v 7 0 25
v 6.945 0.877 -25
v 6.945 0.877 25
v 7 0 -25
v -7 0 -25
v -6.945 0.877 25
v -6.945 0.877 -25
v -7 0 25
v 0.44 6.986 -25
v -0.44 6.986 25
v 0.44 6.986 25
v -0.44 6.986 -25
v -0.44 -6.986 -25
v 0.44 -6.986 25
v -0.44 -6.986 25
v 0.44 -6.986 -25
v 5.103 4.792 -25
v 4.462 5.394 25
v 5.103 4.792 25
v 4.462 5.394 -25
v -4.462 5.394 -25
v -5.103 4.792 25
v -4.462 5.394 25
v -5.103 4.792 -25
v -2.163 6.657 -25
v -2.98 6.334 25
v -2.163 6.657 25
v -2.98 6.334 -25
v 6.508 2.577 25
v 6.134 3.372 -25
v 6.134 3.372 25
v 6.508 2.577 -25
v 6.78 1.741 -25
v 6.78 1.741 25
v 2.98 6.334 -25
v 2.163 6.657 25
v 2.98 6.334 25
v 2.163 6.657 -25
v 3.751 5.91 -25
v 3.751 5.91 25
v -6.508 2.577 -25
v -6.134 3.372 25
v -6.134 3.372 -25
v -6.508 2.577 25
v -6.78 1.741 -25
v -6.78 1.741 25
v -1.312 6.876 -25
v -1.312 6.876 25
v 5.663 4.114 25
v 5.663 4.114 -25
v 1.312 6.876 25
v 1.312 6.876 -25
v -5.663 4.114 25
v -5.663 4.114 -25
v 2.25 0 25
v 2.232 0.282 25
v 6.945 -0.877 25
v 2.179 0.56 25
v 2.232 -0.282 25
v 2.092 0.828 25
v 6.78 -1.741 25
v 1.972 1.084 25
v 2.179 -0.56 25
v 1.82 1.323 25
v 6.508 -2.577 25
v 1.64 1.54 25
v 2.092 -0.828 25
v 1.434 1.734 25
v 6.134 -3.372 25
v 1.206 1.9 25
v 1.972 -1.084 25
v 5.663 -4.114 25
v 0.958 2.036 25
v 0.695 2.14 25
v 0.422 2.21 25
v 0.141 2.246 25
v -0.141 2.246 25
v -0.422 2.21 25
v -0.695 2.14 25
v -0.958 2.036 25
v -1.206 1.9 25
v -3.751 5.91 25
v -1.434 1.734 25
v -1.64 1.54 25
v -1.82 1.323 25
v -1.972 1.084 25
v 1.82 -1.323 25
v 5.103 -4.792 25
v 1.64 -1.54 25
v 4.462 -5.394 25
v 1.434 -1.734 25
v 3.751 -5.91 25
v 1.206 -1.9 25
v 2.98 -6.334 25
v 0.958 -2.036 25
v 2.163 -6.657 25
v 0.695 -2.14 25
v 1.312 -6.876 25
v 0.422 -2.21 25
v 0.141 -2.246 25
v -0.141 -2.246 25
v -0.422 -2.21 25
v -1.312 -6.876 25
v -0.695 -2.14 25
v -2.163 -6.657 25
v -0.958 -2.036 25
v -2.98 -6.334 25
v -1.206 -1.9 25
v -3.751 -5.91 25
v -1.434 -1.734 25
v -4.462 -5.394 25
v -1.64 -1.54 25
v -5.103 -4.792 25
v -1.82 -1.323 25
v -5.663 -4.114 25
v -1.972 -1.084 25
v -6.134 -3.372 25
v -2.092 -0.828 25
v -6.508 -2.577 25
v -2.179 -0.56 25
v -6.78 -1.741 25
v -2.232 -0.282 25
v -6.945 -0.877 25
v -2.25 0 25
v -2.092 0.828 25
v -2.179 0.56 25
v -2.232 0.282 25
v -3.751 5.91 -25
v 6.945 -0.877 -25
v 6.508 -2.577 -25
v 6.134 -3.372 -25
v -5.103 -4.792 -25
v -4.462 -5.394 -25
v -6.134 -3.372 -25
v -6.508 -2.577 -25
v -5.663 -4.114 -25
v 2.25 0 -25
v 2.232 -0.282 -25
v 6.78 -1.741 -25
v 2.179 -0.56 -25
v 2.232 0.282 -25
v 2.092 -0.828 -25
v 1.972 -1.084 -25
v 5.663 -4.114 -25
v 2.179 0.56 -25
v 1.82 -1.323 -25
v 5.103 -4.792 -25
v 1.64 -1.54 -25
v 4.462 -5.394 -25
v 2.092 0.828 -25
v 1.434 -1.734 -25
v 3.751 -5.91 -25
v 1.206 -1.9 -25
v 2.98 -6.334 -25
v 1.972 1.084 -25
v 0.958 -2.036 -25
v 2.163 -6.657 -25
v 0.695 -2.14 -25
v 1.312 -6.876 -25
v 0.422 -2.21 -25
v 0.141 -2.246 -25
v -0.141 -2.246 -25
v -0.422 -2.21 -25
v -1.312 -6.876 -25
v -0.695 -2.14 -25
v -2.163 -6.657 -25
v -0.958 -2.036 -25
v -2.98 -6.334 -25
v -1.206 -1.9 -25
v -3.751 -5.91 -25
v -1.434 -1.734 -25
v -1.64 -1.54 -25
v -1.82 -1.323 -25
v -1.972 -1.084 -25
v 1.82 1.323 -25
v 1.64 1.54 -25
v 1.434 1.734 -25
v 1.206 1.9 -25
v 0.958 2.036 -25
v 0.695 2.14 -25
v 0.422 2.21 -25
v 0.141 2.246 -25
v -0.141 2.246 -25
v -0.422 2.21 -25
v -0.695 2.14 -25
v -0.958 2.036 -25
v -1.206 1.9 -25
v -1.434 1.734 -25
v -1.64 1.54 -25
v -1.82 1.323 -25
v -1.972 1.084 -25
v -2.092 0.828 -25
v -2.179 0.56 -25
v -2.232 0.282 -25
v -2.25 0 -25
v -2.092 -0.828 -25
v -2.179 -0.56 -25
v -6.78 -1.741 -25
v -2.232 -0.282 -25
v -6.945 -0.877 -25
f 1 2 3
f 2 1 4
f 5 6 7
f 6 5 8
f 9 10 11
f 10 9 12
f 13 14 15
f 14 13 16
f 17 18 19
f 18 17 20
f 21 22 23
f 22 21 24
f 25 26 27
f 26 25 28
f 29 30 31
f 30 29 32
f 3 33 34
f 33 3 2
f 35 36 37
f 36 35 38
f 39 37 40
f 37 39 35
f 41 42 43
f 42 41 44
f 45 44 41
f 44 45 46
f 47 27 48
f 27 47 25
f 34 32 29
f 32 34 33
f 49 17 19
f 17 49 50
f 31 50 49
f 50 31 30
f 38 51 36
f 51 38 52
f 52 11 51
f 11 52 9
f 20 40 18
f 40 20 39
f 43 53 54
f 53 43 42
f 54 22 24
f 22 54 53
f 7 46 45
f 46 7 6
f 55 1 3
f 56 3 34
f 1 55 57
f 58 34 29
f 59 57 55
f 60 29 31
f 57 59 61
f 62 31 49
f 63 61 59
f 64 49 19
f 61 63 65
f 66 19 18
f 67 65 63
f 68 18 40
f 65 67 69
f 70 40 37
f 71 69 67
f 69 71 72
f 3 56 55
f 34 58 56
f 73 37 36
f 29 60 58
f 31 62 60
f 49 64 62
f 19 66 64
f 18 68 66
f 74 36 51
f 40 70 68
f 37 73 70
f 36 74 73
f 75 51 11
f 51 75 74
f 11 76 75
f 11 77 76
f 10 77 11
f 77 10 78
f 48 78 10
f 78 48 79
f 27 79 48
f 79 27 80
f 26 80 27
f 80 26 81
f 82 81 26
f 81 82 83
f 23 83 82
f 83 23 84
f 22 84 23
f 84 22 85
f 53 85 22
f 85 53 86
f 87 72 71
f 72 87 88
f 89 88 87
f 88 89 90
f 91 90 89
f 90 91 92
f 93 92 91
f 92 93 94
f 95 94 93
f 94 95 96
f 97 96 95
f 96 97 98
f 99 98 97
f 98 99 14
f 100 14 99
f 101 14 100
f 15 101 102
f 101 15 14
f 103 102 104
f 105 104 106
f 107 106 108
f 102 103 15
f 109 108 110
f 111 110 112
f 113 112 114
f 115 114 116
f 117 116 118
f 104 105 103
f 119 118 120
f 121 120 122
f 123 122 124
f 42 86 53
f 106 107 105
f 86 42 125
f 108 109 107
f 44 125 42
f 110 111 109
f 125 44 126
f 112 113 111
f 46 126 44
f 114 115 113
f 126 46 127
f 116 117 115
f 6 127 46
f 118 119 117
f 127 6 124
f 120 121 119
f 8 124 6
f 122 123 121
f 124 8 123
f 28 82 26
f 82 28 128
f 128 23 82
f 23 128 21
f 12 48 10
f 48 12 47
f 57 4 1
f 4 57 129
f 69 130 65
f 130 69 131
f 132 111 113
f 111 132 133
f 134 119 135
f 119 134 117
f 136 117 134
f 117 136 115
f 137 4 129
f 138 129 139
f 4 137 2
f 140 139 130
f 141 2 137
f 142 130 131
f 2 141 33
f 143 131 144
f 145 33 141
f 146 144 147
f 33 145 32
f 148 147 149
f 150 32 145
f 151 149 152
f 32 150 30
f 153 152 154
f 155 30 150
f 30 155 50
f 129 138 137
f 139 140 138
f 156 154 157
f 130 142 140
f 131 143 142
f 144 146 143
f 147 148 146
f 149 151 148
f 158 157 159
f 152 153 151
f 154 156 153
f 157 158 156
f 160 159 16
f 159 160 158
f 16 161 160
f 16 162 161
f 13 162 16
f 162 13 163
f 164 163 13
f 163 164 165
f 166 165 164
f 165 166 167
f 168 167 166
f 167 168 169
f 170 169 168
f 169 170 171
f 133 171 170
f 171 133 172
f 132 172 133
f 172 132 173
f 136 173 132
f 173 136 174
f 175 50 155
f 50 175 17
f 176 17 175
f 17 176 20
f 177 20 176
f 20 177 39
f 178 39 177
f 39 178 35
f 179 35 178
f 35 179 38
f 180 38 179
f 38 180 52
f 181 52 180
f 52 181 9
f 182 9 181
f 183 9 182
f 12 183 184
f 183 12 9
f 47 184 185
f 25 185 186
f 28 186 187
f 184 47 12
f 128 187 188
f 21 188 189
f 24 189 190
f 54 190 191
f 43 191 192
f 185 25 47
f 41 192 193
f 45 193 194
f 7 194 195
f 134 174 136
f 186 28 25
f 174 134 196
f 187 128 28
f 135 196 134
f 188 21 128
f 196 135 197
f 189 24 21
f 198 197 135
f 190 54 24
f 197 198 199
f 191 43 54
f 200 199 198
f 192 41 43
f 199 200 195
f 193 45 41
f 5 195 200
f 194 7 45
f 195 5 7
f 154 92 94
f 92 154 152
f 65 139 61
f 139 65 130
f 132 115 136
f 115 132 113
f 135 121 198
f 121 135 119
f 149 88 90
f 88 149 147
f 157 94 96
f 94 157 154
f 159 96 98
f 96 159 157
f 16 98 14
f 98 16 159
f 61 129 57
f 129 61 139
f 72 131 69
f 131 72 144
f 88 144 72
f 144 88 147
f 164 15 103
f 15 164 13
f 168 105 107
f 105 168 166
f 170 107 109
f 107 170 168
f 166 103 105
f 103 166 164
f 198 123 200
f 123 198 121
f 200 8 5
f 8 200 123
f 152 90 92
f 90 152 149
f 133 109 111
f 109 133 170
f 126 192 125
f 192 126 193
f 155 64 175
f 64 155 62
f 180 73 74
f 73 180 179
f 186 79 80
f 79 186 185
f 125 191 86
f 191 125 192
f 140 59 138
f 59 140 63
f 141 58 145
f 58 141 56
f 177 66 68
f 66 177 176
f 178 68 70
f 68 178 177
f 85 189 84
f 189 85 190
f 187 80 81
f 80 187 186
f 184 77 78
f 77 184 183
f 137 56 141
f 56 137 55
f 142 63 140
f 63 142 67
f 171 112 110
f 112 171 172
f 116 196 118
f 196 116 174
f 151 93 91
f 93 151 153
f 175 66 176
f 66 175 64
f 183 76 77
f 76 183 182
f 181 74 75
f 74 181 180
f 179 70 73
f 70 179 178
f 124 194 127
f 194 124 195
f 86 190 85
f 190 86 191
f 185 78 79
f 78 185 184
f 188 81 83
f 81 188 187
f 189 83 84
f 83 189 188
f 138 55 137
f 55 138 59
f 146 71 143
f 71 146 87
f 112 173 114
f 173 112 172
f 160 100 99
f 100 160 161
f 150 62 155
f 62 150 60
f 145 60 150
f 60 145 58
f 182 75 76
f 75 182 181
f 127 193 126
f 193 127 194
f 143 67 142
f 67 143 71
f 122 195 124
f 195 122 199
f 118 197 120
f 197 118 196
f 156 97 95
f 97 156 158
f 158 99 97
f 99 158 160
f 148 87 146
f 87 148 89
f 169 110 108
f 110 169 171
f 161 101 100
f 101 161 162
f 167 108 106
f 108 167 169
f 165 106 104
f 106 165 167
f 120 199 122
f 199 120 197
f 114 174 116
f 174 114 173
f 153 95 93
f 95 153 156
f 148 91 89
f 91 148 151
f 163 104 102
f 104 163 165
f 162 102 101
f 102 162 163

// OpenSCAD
$fn = 50;


difference() {
	union() {
		translate(v = [0, 0, -25.0000000000]) {
			cylinder(h = 50, r = 7.0000000000);
		}
	}
	union() {
		translate(v = [0, 0, -100.0000000000]) {
			cylinder(h = 200, r = 2.2500000000);
		}
	}
}
